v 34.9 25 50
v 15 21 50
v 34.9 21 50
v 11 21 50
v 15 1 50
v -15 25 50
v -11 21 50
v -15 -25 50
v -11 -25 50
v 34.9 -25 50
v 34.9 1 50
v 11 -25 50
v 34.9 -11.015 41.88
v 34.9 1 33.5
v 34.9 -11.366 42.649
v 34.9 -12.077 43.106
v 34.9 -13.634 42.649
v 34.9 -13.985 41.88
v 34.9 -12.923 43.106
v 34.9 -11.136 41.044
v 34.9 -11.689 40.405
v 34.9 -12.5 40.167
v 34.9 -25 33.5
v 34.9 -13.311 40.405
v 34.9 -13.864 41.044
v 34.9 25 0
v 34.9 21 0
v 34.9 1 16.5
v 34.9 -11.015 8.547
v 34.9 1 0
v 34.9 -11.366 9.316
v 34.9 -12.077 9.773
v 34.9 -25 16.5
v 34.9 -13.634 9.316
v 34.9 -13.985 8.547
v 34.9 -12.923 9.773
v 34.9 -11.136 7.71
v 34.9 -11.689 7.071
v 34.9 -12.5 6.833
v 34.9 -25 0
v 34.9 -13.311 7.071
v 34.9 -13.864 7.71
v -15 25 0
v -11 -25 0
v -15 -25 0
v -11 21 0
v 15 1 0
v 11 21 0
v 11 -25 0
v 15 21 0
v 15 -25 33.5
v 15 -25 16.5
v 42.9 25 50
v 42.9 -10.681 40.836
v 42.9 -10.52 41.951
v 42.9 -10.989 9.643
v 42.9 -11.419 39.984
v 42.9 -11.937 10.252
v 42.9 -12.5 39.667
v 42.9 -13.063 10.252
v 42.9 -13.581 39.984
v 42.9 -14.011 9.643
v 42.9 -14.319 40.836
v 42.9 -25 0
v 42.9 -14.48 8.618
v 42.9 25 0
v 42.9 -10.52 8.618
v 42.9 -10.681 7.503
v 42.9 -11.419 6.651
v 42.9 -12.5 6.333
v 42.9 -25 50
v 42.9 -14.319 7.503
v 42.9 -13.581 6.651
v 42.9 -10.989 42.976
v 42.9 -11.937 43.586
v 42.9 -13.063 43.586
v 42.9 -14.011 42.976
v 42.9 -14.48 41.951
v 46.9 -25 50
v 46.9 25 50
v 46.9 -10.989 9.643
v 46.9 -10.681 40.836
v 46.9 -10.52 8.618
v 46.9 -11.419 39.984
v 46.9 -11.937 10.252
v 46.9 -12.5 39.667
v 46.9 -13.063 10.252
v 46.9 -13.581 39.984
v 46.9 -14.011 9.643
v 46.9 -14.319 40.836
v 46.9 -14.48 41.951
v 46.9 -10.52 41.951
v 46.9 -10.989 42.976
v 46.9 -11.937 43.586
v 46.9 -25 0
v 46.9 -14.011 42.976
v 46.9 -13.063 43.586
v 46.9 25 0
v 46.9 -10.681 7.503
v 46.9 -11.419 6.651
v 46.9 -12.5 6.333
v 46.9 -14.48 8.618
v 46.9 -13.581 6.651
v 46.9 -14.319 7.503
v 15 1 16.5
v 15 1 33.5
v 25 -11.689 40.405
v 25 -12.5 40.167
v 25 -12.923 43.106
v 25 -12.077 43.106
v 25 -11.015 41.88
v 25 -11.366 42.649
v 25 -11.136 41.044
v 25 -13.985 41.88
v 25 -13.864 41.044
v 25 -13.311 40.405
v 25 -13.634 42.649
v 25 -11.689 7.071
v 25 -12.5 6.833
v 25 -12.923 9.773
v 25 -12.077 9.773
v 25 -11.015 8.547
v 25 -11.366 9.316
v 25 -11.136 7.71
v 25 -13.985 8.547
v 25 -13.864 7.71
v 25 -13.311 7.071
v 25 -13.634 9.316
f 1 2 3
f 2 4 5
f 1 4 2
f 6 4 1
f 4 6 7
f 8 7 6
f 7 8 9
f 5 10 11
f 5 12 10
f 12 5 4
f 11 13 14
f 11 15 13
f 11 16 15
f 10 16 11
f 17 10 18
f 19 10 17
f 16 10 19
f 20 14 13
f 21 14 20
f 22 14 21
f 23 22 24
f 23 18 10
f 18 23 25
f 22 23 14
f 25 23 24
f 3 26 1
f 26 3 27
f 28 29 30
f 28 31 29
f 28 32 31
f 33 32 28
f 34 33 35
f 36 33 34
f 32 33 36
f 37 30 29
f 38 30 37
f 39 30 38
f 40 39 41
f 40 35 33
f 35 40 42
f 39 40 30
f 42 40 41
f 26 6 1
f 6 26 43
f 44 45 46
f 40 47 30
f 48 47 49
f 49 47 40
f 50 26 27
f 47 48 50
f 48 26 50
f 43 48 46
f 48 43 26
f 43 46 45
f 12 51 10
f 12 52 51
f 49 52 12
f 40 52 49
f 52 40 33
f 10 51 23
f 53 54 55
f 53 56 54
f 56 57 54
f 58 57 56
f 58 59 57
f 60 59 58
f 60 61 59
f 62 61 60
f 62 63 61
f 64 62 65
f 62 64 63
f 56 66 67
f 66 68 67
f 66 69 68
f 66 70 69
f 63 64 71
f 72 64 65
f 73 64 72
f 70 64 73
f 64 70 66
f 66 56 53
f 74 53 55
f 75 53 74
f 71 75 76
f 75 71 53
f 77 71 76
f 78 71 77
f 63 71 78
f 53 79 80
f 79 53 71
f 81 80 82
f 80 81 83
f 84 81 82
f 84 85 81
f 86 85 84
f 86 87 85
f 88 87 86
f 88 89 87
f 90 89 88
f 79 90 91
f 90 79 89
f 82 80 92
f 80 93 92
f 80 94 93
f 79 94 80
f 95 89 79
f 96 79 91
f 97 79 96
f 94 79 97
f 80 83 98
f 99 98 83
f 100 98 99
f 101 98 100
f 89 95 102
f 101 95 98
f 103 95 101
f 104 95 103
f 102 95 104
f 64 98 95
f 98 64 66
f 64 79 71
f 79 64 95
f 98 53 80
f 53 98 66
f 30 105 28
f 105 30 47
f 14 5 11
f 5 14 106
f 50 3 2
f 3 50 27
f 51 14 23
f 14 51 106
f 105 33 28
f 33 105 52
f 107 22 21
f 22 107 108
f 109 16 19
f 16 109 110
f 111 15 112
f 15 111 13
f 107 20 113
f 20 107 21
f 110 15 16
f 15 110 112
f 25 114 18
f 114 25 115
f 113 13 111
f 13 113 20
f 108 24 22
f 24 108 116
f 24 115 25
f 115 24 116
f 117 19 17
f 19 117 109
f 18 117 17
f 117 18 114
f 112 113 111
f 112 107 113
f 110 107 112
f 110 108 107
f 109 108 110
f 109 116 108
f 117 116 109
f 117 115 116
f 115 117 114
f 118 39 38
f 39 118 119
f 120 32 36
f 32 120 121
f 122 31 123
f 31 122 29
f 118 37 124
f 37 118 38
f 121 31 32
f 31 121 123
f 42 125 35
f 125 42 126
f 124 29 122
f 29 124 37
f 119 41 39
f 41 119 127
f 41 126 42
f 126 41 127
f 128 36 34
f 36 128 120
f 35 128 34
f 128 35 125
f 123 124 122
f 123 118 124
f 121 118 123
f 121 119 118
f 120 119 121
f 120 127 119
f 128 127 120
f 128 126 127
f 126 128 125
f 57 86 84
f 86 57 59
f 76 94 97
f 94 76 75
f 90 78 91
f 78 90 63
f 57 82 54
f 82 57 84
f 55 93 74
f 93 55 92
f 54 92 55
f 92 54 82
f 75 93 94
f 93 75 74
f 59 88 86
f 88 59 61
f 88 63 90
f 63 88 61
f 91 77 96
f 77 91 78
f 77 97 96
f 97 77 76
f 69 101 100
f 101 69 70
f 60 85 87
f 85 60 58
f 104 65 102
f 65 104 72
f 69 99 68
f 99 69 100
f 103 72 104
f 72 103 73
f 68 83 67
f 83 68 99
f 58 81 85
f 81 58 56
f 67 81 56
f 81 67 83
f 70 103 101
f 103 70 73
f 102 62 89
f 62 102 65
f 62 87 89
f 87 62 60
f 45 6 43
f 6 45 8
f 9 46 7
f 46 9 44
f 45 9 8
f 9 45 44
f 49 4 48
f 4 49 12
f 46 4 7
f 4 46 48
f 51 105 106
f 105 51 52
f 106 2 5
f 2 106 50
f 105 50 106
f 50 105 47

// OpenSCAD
thickness=4;

/////////////////////
//saddle for fence
/////////////////////
fench_width=22;
height=50;
overhang=50;
//back
translate([-(fench_width/2+thickness/2),0,height/2]) {
    cube([thickness,overhang,height],center=true);
}
//top
translate([0,overhang/2-thickness/2,height/2]) {
    cube([fench_width,thickness,height],center=true);
}
//front
translate([(fench_width/2+thickness/2),0,height/2]) {
    cube([thickness,overhang,height],center=true);
}
/////////////////////
//socket
/////////////////////
socket_depth=20;
socket_width=51;
socket_height=20;
stem_width=17;
stem_height=overhang-thickness; //-socket_height;
screw_depth=10;

translate([(fench_width/2+thickness+socket_depth/2-0.1),0,overhang/2]) {
    difference(){
        union(){
            // socket plate from which we'll subtract
            cube([socket_depth,overhang,height],center=true);
            
            // top plate to cover socket
            translate([socket_depth,0,0]){
                cube([thickness,overhang,height],center=true);
            }
        }
        union(){
            // remove ears piece from socket plate
            translate([0,overhang/2-socket_height/2-thickness,0])  cube([socket_depth+0.1,socket_height,socket_width+0.1],center=true);
            // remove stem piece from socket plate
            translate([0,-stem_height/2+1,0]) cube([socket_depth+0.1,stem_height+0.1,stem_width],center=true);
            //remove for screw holes from socket plate
            translate([socket_depth/2-screw_depth/2+0.1,-overhang/4,height/2-height/6]) {
                rotate([0,90,0]) cylinder(r=1.5,h=screw_depth,center=true,$fn=11);
            }
            translate([socket_depth/2-screw_depth/2+0.1,-overhang/4,-(height/2-height/6)]) {
                rotate([0,90,0]) cylinder(r=1.5,h=screw_depth,center=true,$fn=11);
            }
            //remove for screw holes from top plate
            translate([socket_depth,-overhang/4,height/2-height/6]) {
                rotate([0,90,0]) cylinder(r=2,h=screw_depth,center=true,$fn=11);
            }
            translate([socket_depth,-overhang/4,-(height/2-height/6)]) {
                rotate([0,90,0]) cylinder(r=2,h=screw_depth,center=true,$fn=11);
            }
        }
    }
}
